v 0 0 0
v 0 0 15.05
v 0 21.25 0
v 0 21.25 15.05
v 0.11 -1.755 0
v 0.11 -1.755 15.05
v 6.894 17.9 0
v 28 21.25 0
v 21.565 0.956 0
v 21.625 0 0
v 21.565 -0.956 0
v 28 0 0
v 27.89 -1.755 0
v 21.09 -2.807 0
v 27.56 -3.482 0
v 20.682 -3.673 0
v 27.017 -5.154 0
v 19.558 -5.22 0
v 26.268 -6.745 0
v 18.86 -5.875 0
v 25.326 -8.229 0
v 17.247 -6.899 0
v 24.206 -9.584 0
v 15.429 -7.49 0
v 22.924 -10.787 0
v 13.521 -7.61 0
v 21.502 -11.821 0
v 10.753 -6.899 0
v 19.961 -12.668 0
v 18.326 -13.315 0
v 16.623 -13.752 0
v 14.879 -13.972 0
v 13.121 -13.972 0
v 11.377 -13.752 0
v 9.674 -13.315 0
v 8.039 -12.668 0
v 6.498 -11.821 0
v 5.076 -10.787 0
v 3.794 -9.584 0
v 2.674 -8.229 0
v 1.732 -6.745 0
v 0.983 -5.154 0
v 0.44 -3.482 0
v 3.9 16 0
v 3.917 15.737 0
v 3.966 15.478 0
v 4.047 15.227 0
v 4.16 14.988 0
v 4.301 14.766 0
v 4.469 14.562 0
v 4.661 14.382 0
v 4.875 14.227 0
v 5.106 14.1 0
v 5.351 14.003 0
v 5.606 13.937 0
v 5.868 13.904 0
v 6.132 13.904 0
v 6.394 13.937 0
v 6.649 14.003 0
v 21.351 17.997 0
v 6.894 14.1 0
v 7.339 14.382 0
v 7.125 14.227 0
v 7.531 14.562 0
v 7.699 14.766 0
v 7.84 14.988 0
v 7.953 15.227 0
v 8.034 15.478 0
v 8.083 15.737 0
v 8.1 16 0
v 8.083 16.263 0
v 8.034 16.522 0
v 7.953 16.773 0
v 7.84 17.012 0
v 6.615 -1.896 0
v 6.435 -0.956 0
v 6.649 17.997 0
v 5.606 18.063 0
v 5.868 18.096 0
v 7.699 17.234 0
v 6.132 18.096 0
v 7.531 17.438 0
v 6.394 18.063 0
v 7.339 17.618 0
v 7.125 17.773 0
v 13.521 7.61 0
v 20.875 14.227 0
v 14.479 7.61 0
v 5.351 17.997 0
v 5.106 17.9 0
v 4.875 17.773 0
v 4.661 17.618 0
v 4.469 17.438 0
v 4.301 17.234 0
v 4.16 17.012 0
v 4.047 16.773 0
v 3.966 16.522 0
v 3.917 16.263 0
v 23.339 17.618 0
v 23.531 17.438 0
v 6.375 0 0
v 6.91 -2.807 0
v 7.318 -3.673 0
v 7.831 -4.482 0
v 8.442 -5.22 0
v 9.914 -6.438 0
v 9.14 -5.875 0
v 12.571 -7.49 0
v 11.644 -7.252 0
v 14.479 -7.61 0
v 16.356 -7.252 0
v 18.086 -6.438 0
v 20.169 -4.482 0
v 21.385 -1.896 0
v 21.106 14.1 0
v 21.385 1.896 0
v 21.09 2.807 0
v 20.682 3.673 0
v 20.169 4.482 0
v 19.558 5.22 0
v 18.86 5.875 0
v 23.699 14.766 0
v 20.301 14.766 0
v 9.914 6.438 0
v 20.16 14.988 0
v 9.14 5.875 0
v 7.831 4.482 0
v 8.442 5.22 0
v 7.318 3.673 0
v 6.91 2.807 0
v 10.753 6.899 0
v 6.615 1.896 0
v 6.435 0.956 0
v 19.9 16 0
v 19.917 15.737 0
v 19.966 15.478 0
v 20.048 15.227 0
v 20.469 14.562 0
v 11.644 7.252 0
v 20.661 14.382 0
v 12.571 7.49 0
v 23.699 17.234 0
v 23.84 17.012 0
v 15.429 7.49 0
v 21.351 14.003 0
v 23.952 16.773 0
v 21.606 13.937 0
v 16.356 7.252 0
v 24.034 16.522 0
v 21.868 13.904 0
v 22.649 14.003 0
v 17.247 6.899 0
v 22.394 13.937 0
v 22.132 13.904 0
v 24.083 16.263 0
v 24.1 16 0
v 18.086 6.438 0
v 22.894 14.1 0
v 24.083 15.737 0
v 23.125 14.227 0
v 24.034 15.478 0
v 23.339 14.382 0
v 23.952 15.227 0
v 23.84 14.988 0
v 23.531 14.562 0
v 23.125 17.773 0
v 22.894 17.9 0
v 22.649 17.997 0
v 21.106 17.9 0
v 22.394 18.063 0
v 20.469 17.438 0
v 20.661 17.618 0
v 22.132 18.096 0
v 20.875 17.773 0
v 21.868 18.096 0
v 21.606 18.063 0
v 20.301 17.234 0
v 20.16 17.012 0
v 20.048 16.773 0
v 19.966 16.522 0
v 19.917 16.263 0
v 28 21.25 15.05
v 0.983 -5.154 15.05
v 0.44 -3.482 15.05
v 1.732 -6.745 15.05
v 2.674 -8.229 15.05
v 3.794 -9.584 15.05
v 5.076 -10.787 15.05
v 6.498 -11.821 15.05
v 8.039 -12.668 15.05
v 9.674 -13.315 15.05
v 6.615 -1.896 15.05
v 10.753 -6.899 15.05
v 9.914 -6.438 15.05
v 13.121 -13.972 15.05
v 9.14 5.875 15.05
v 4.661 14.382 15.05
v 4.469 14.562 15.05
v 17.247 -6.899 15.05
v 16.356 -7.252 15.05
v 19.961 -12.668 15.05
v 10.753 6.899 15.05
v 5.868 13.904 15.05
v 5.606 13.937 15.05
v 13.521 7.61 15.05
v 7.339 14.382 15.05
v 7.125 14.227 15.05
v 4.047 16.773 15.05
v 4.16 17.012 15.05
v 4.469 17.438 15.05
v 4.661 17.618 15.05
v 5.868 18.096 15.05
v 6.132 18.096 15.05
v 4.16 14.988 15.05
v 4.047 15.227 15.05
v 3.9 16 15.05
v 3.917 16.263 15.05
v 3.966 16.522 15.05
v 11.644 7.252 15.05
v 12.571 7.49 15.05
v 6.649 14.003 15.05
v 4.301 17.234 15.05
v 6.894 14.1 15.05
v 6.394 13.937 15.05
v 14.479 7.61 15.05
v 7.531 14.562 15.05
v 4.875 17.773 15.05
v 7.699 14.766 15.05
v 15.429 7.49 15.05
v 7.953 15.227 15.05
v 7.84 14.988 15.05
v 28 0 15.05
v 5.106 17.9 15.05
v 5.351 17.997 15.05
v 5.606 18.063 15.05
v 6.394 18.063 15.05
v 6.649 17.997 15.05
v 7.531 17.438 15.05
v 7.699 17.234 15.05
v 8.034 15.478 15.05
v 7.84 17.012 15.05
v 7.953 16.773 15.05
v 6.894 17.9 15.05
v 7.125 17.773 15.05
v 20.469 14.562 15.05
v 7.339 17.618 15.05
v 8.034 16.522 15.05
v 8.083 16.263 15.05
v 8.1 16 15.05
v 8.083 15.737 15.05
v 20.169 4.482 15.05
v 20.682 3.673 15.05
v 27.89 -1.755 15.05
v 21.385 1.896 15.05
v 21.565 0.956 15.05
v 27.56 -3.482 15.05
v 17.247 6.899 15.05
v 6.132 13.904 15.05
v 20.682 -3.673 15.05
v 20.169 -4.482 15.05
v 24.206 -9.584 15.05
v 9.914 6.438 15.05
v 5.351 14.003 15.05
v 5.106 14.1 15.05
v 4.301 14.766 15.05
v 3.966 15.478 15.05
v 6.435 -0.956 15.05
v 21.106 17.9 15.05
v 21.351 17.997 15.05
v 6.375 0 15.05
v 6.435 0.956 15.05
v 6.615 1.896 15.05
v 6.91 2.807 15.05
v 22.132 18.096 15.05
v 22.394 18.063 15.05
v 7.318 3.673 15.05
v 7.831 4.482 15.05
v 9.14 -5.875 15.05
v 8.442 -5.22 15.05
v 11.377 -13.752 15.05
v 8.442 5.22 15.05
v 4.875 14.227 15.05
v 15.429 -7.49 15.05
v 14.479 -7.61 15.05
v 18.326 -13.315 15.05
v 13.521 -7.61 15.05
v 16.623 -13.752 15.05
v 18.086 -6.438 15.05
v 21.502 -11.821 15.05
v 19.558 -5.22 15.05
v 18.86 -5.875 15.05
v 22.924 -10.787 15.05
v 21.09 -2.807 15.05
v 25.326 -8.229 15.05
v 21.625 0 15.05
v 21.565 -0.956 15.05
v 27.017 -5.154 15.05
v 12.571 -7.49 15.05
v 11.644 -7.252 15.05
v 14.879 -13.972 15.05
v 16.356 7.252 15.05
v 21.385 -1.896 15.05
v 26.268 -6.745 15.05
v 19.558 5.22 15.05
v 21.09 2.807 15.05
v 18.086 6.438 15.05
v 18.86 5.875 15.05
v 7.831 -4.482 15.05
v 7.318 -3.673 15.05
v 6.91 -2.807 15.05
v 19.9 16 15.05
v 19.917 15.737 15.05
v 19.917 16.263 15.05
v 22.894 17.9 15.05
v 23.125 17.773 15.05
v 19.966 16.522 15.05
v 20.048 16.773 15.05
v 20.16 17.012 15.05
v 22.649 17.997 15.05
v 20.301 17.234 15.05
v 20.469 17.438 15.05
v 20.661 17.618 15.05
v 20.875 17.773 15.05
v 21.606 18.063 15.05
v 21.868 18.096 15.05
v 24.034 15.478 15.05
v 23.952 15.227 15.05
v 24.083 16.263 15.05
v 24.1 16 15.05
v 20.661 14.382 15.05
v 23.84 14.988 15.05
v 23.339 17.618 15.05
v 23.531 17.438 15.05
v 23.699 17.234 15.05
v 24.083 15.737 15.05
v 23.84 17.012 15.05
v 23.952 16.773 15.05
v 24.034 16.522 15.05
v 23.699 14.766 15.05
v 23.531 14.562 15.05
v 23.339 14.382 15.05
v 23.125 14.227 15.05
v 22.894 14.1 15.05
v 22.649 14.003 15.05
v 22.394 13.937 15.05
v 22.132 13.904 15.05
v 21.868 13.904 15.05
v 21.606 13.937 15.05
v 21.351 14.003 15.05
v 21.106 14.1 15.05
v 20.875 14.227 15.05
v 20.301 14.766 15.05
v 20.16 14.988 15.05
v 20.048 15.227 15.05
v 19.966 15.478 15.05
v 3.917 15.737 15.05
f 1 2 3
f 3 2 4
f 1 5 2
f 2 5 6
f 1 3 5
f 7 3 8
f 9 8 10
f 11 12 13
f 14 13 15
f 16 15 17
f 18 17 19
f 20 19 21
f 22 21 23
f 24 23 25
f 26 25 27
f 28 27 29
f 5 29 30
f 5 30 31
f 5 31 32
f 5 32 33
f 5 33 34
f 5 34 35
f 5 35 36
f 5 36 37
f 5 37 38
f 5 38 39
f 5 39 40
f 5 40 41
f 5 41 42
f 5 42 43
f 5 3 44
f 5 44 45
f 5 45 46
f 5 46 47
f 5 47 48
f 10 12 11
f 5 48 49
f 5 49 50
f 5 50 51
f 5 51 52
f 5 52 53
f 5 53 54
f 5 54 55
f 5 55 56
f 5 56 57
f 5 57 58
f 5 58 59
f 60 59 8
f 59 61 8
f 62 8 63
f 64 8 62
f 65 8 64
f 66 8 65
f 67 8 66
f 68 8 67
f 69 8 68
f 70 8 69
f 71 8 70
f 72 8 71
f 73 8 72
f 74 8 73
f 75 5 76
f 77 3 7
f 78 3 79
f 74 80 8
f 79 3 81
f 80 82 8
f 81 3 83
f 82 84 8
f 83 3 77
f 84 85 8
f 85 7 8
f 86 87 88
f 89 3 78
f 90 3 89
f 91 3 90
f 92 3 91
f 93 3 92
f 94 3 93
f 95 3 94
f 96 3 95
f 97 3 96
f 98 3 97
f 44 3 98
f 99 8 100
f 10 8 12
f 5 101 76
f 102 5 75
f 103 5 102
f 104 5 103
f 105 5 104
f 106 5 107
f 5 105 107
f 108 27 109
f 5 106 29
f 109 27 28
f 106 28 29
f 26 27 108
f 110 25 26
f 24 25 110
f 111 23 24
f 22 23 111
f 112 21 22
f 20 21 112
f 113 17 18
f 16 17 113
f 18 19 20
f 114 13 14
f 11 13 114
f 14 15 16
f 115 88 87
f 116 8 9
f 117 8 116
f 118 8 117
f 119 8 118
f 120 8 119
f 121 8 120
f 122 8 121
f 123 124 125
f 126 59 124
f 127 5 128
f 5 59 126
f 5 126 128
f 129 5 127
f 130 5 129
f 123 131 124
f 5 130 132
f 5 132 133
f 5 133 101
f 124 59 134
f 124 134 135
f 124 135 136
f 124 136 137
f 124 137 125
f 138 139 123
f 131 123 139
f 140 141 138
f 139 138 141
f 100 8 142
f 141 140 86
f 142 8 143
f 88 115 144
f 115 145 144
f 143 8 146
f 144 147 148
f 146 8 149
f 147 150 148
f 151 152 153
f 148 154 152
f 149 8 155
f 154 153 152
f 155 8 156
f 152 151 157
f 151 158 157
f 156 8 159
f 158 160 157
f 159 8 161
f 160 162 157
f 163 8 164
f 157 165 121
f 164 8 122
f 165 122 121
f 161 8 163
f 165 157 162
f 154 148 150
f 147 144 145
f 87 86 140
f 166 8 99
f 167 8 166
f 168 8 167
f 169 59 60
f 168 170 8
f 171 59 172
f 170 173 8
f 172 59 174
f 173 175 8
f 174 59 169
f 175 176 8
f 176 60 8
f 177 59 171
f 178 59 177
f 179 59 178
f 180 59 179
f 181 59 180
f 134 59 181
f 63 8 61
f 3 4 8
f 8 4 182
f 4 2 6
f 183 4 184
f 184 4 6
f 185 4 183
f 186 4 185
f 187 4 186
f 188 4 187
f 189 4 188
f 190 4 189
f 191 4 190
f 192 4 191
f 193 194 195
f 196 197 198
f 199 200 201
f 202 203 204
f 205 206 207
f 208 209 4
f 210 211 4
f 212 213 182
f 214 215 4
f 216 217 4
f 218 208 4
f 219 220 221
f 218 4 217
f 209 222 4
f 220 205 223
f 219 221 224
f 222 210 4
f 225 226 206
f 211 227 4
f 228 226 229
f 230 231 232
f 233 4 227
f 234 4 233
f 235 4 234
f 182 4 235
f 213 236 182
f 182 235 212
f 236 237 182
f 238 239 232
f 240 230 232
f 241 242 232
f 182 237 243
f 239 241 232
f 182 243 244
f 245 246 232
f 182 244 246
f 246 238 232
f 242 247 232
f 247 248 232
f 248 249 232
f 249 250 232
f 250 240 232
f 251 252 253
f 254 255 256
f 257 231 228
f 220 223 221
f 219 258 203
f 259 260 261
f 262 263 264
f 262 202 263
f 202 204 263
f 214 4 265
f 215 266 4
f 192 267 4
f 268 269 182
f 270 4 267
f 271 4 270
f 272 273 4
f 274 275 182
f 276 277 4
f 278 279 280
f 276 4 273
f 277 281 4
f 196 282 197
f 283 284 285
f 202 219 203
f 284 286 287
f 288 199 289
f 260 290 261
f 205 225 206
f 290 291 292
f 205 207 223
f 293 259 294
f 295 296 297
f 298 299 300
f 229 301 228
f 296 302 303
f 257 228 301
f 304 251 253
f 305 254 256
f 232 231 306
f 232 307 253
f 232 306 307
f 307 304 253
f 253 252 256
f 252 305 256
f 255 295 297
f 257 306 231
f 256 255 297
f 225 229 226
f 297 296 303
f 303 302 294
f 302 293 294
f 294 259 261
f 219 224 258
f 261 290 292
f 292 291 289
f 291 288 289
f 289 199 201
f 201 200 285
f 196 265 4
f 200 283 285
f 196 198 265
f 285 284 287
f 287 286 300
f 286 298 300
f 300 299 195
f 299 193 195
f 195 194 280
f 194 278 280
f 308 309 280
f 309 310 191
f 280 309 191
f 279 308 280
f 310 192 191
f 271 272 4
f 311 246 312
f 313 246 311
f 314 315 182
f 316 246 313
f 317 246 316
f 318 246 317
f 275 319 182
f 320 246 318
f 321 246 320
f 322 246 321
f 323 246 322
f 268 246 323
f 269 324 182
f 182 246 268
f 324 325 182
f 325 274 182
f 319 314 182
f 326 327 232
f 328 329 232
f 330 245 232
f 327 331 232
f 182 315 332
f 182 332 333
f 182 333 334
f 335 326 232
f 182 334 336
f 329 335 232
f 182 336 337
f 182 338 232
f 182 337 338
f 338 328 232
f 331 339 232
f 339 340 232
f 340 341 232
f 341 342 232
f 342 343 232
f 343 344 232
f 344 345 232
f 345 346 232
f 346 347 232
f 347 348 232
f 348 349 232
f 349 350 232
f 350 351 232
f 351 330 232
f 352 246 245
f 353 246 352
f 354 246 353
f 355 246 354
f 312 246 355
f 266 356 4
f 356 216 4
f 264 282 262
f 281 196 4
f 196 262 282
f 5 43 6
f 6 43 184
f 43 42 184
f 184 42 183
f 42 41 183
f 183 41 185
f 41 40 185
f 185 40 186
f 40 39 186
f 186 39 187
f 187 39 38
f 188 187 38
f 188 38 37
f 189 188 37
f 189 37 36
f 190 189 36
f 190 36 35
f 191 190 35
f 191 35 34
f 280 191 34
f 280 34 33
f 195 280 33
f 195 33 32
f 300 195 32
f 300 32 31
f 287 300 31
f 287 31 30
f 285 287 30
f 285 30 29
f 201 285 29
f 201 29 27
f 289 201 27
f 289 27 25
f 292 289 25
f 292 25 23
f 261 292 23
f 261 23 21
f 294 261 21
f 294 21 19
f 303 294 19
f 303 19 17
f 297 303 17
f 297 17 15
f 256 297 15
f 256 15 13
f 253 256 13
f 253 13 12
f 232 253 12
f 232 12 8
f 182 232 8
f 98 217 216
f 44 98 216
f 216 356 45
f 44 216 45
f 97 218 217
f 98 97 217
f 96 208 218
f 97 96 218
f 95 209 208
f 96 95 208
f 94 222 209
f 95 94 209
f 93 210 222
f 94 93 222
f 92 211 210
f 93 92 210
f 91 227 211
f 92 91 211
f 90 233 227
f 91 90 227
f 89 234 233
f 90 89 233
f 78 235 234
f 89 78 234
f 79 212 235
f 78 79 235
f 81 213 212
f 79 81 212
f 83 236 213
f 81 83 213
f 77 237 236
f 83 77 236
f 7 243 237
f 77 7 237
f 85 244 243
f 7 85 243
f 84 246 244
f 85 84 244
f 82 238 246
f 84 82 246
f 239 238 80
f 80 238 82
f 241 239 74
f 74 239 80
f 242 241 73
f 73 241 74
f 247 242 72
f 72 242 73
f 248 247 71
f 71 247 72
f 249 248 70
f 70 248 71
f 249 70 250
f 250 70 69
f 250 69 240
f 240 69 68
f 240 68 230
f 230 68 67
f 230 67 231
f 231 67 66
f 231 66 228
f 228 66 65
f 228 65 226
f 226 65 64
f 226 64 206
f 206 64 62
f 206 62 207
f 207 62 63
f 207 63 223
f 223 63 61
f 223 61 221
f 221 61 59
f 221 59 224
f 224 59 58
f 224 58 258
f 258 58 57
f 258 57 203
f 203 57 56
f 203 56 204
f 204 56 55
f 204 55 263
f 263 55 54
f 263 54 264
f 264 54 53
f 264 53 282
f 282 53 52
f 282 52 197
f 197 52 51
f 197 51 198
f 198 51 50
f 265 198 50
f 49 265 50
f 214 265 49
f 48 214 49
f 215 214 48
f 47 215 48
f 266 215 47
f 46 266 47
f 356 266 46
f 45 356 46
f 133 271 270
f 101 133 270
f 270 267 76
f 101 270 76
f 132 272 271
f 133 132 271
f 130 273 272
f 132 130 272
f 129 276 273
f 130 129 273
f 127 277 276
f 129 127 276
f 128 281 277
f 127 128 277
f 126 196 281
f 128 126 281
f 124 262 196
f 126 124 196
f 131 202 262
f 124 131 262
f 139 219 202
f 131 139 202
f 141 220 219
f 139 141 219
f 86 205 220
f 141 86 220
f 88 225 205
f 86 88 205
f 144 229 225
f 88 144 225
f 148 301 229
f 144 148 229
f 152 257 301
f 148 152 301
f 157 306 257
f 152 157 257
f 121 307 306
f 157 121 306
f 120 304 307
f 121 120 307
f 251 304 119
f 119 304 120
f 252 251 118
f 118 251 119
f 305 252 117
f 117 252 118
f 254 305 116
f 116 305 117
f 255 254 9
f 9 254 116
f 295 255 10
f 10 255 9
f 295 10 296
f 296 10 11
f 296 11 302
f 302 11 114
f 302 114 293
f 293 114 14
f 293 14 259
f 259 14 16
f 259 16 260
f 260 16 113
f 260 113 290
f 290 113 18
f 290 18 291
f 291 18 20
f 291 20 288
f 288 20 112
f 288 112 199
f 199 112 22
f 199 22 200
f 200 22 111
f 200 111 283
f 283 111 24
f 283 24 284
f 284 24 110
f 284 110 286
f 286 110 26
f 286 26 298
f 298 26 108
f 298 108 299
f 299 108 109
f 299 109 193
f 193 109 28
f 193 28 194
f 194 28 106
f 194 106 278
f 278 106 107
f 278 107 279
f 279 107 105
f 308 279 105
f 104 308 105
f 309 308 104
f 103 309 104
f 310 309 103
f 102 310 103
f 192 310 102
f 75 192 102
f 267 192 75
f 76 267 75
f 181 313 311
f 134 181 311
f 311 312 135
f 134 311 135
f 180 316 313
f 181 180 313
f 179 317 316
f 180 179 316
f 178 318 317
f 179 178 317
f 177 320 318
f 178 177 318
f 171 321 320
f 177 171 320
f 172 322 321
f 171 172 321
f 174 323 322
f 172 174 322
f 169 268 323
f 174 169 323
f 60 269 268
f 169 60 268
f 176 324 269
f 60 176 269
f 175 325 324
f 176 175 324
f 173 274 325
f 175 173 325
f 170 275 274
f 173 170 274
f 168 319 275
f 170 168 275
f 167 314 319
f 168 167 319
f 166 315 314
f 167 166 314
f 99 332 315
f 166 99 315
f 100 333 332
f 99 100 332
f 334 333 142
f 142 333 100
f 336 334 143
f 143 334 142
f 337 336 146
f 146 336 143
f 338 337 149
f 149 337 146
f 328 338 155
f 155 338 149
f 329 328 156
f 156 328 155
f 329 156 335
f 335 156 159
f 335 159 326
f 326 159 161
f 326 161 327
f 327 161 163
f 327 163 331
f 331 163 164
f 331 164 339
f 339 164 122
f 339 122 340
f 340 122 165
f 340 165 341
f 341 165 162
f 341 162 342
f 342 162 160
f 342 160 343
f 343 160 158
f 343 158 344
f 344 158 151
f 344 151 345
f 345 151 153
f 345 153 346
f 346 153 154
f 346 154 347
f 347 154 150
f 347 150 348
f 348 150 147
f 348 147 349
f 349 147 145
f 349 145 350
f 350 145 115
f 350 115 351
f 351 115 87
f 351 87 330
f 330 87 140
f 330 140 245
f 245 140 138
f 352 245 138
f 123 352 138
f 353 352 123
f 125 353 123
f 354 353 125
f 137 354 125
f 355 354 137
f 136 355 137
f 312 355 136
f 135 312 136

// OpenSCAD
// file: functions.scad
// PRUSA Mendel  
// Functions used in many files
// GNU GPL v2
// Josef Průša
// josefprusa@me.com
// prusadjs.cz
// http://www.reprap.org/wiki/Prusa_Mendel
// http://github.com/prusajr/PrusaMendel

module nut(d,h,horizontal=true){
cornerdiameter =  (d / 2) / cos (180 / 6);
cylinder(h = h, r = cornerdiameter, $fn = 6);
if(horizontal){
for(i = [1:6]){
	rotate([0,0,60*i]) translate([-cornerdiameter-0.2,0,0]) rotate([0,0,-45]) cube(size = [2,2,h]);
}}
}

// By nophead
module polyhole(d,h) {
    n = max(round(2 * d),3);
    rotate([0,0,180])
        cylinder(h = h, r = (d / 2) / cos (180 / n), $fn = n);
}

module roundcorner(diameter){
	difference(){
		cube(size = [diameter,diameter,99], center = false);
		translate(v = [diameter, diameter, 0]) cylinder(h = 100, r=diameter, center=true);
	}
}
// file: metric.scad
// PRUSA Mendel  
// Default metric sizes
// GNU GPL v2
// Josef Průša
// josefprusa@me.com
// prusadjs.cz
// http://www.reprap.org/wiki/Prusa_Mendel
// http://github.com/prusajr/PrusaMendel

// DONT CHANGE THIS FILE! ALTER VALUES IN CONFIGURATION.SCAD INSTEAD

// RODS

threaded_rod_diameter = 8;
threaded_rod_diameter_horizontal = 8;
smooth_bar_diameter = 8;
smooth_bar_diameter_horizontal = 8;

// Nuts and bolts

m8_diameter = 8;
m8_nut_diameter = 14.5;

m4_diameter = 4;
m4_nut_diameter = 7.5;

m3_diameter = 3;
m3_nut_diameter = 5;

// Bushing holder

bushing_core_diameter = smooth_bar_diameter;
bushing_material_thickness = 1;

// Motors

motor_shaft = 5.1;
// file: configuration.scad
// PRUSA Mendel  
// Configuration file
// GNU GPL v2
// Josef Průša
// josefprusa@me.com
// prusadjs.cz
// http://www.reprap.org/wiki/Prusa_Mendel
// http://github.com/prusajr/PrusaMendel

// PLEASE SELECT ONE OF THE CONFIGURATIONS BELOW
// BY UN-COMMENTING IT

// Uncomment for metric settings
// METRIC METRIC METRIC METRIC METRIC METRIC METRIC METRIC 

include <metric.scad>;

// Uncomment for imperial settings
// IMPERIAL IMPERIAL IMPERIAL IMPERIAL IMPERIAL IMPERIAL IMPERIAL 

//include <sae.scad>;

//thin_wall = 3;
// LM8UU
//linear = false;

// override settings by customizing below
// CUSTOM CUSTOM CUSTOM CUSTOM CUSTOM CUSTOM CUSTOM CUSTOM CUSTOM

threaded_rod_diameter = 8.2;
threaded_rod_diameter_horizontal = 8.2;
smooth_bar_diameter = 8.3;
smooth_bar_diameter_horizontal = 8.3;

// Nuts and bolts

m8_diameter = 8.3;
m8_nut_diameter = 15;

m4_diameter = 4.2;
m4_nut_diameter = 9;

m3_diameter = 3.3;
m3_nut_diameter = 5.8;

///counted stuff
m3_nut_diameter_bigger = ((m3_nut_diameter  / 2) / cos (180 / 6))*2;

// functions 
include <functions.scad>
// main file
// f. beachler
// longevity software d.b.a. terawatt industries

include <configuration.scad>;

$fn=50;

mnt_id = 15 + .25;
mnt_od = 22;
lm8uu_thickness = 6;
lm8uu_mnt_height = 15.05;
mount_screws = true;
mnt_screw_dia = m4_diameter;
base = false;	// true for horizontal base
base_thickness = 6;		// ignored if base=false
base_mnt_sep = 35;

lm8uu_mount_retainer(mnt_od, mnt_id, lm8uu_mnt_height, lm8uu_thickness, mount_screws, mnt_screw_dia, base, base_thickness, base_mnt_sep);

module lm8uu_mount_retainer(lo, li, h, t, mnt, mntd, base, bt, bmntsep, boreoffset = true) {
	difference() {
		union() {
			if (!base) {
				cube([lo + t, li + t, h]);
			} else {
				cube([lo + t, li - bt, h]);
			}
			translate([(lo + t) / 2, 0, 0]) cylinder(r = (lo + t) / 2, h = h);
		}
		if (!base && mnt) {
			translate([t, lo - t, -0.01]) cylinder(r = mntd / 2, h = h + 0.02);
			translate([lo, lo - t, -0.01]) cylinder(r = mntd / 2, h = h + 0.02);
		}
		if (base) {
			// base mounting hole clearance
			rotate([90, 0, 0]) {
				translate([(lo + t) / 2, h / 2, -bt * 2 - 0.01]) {
					translate([-bmntsep / 2, 0, 0]) cylinder(r = mntd * 1.25, h = h * 2 + 0.02);
					translate([bmntsep / 2, 0, 0]) cylinder(r = mntd * 1.25, h = h * 2 + 0.02);
				}
			}
			if (boreoffset) {
				// offset bore
				translate([(lo + t) / 2, (lo - li) / 2, -0.01]) cylinder(r = li / 2, h = h + 0.02);
			} else {
				// normal bore
				translate([(lo + t) / 2, 0, -0.01]) cylinder(r = li / 2 , h = h + 0.02);
			}
			// cutoff bottom
			translate([0, -bt - lo - (lo - li) / 2, -0.01]) cube([lo + t, li + t + 1, h + 0.02]);
		} else {
			// normal bore
			translate([(lo + t) / 2, 0, -0.01]) cylinder(r = li / 2 , h = h + 0.02);
		}
	}
	if (base) {
		// base mounting holes
		difference() {
			translate([-mntd * 2.25, lo / 2 - t / 2, 0]) cube([lo + t + mntd * 4.5, bt, h]);
			rotate([90, 0, 0]) {
				translate([(lo + t) / 2, h / 2, -h]) {
					translate([-bmntsep / 2, 0, 0]) cylinder(r = mntd / 2, h = h + 0.02);
					translate([bmntsep / 2, 0, 0]) cylinder(r = mntd / 2, h = h + 0.02);
				}
			}
			if (boreoffset) {
				// offset bore
				translate([(lo + t) / 2, (lo - li) / 2, -0.01]) cylinder(r = li / 2, h = h + 0.02);
			}
		}
	}
}
